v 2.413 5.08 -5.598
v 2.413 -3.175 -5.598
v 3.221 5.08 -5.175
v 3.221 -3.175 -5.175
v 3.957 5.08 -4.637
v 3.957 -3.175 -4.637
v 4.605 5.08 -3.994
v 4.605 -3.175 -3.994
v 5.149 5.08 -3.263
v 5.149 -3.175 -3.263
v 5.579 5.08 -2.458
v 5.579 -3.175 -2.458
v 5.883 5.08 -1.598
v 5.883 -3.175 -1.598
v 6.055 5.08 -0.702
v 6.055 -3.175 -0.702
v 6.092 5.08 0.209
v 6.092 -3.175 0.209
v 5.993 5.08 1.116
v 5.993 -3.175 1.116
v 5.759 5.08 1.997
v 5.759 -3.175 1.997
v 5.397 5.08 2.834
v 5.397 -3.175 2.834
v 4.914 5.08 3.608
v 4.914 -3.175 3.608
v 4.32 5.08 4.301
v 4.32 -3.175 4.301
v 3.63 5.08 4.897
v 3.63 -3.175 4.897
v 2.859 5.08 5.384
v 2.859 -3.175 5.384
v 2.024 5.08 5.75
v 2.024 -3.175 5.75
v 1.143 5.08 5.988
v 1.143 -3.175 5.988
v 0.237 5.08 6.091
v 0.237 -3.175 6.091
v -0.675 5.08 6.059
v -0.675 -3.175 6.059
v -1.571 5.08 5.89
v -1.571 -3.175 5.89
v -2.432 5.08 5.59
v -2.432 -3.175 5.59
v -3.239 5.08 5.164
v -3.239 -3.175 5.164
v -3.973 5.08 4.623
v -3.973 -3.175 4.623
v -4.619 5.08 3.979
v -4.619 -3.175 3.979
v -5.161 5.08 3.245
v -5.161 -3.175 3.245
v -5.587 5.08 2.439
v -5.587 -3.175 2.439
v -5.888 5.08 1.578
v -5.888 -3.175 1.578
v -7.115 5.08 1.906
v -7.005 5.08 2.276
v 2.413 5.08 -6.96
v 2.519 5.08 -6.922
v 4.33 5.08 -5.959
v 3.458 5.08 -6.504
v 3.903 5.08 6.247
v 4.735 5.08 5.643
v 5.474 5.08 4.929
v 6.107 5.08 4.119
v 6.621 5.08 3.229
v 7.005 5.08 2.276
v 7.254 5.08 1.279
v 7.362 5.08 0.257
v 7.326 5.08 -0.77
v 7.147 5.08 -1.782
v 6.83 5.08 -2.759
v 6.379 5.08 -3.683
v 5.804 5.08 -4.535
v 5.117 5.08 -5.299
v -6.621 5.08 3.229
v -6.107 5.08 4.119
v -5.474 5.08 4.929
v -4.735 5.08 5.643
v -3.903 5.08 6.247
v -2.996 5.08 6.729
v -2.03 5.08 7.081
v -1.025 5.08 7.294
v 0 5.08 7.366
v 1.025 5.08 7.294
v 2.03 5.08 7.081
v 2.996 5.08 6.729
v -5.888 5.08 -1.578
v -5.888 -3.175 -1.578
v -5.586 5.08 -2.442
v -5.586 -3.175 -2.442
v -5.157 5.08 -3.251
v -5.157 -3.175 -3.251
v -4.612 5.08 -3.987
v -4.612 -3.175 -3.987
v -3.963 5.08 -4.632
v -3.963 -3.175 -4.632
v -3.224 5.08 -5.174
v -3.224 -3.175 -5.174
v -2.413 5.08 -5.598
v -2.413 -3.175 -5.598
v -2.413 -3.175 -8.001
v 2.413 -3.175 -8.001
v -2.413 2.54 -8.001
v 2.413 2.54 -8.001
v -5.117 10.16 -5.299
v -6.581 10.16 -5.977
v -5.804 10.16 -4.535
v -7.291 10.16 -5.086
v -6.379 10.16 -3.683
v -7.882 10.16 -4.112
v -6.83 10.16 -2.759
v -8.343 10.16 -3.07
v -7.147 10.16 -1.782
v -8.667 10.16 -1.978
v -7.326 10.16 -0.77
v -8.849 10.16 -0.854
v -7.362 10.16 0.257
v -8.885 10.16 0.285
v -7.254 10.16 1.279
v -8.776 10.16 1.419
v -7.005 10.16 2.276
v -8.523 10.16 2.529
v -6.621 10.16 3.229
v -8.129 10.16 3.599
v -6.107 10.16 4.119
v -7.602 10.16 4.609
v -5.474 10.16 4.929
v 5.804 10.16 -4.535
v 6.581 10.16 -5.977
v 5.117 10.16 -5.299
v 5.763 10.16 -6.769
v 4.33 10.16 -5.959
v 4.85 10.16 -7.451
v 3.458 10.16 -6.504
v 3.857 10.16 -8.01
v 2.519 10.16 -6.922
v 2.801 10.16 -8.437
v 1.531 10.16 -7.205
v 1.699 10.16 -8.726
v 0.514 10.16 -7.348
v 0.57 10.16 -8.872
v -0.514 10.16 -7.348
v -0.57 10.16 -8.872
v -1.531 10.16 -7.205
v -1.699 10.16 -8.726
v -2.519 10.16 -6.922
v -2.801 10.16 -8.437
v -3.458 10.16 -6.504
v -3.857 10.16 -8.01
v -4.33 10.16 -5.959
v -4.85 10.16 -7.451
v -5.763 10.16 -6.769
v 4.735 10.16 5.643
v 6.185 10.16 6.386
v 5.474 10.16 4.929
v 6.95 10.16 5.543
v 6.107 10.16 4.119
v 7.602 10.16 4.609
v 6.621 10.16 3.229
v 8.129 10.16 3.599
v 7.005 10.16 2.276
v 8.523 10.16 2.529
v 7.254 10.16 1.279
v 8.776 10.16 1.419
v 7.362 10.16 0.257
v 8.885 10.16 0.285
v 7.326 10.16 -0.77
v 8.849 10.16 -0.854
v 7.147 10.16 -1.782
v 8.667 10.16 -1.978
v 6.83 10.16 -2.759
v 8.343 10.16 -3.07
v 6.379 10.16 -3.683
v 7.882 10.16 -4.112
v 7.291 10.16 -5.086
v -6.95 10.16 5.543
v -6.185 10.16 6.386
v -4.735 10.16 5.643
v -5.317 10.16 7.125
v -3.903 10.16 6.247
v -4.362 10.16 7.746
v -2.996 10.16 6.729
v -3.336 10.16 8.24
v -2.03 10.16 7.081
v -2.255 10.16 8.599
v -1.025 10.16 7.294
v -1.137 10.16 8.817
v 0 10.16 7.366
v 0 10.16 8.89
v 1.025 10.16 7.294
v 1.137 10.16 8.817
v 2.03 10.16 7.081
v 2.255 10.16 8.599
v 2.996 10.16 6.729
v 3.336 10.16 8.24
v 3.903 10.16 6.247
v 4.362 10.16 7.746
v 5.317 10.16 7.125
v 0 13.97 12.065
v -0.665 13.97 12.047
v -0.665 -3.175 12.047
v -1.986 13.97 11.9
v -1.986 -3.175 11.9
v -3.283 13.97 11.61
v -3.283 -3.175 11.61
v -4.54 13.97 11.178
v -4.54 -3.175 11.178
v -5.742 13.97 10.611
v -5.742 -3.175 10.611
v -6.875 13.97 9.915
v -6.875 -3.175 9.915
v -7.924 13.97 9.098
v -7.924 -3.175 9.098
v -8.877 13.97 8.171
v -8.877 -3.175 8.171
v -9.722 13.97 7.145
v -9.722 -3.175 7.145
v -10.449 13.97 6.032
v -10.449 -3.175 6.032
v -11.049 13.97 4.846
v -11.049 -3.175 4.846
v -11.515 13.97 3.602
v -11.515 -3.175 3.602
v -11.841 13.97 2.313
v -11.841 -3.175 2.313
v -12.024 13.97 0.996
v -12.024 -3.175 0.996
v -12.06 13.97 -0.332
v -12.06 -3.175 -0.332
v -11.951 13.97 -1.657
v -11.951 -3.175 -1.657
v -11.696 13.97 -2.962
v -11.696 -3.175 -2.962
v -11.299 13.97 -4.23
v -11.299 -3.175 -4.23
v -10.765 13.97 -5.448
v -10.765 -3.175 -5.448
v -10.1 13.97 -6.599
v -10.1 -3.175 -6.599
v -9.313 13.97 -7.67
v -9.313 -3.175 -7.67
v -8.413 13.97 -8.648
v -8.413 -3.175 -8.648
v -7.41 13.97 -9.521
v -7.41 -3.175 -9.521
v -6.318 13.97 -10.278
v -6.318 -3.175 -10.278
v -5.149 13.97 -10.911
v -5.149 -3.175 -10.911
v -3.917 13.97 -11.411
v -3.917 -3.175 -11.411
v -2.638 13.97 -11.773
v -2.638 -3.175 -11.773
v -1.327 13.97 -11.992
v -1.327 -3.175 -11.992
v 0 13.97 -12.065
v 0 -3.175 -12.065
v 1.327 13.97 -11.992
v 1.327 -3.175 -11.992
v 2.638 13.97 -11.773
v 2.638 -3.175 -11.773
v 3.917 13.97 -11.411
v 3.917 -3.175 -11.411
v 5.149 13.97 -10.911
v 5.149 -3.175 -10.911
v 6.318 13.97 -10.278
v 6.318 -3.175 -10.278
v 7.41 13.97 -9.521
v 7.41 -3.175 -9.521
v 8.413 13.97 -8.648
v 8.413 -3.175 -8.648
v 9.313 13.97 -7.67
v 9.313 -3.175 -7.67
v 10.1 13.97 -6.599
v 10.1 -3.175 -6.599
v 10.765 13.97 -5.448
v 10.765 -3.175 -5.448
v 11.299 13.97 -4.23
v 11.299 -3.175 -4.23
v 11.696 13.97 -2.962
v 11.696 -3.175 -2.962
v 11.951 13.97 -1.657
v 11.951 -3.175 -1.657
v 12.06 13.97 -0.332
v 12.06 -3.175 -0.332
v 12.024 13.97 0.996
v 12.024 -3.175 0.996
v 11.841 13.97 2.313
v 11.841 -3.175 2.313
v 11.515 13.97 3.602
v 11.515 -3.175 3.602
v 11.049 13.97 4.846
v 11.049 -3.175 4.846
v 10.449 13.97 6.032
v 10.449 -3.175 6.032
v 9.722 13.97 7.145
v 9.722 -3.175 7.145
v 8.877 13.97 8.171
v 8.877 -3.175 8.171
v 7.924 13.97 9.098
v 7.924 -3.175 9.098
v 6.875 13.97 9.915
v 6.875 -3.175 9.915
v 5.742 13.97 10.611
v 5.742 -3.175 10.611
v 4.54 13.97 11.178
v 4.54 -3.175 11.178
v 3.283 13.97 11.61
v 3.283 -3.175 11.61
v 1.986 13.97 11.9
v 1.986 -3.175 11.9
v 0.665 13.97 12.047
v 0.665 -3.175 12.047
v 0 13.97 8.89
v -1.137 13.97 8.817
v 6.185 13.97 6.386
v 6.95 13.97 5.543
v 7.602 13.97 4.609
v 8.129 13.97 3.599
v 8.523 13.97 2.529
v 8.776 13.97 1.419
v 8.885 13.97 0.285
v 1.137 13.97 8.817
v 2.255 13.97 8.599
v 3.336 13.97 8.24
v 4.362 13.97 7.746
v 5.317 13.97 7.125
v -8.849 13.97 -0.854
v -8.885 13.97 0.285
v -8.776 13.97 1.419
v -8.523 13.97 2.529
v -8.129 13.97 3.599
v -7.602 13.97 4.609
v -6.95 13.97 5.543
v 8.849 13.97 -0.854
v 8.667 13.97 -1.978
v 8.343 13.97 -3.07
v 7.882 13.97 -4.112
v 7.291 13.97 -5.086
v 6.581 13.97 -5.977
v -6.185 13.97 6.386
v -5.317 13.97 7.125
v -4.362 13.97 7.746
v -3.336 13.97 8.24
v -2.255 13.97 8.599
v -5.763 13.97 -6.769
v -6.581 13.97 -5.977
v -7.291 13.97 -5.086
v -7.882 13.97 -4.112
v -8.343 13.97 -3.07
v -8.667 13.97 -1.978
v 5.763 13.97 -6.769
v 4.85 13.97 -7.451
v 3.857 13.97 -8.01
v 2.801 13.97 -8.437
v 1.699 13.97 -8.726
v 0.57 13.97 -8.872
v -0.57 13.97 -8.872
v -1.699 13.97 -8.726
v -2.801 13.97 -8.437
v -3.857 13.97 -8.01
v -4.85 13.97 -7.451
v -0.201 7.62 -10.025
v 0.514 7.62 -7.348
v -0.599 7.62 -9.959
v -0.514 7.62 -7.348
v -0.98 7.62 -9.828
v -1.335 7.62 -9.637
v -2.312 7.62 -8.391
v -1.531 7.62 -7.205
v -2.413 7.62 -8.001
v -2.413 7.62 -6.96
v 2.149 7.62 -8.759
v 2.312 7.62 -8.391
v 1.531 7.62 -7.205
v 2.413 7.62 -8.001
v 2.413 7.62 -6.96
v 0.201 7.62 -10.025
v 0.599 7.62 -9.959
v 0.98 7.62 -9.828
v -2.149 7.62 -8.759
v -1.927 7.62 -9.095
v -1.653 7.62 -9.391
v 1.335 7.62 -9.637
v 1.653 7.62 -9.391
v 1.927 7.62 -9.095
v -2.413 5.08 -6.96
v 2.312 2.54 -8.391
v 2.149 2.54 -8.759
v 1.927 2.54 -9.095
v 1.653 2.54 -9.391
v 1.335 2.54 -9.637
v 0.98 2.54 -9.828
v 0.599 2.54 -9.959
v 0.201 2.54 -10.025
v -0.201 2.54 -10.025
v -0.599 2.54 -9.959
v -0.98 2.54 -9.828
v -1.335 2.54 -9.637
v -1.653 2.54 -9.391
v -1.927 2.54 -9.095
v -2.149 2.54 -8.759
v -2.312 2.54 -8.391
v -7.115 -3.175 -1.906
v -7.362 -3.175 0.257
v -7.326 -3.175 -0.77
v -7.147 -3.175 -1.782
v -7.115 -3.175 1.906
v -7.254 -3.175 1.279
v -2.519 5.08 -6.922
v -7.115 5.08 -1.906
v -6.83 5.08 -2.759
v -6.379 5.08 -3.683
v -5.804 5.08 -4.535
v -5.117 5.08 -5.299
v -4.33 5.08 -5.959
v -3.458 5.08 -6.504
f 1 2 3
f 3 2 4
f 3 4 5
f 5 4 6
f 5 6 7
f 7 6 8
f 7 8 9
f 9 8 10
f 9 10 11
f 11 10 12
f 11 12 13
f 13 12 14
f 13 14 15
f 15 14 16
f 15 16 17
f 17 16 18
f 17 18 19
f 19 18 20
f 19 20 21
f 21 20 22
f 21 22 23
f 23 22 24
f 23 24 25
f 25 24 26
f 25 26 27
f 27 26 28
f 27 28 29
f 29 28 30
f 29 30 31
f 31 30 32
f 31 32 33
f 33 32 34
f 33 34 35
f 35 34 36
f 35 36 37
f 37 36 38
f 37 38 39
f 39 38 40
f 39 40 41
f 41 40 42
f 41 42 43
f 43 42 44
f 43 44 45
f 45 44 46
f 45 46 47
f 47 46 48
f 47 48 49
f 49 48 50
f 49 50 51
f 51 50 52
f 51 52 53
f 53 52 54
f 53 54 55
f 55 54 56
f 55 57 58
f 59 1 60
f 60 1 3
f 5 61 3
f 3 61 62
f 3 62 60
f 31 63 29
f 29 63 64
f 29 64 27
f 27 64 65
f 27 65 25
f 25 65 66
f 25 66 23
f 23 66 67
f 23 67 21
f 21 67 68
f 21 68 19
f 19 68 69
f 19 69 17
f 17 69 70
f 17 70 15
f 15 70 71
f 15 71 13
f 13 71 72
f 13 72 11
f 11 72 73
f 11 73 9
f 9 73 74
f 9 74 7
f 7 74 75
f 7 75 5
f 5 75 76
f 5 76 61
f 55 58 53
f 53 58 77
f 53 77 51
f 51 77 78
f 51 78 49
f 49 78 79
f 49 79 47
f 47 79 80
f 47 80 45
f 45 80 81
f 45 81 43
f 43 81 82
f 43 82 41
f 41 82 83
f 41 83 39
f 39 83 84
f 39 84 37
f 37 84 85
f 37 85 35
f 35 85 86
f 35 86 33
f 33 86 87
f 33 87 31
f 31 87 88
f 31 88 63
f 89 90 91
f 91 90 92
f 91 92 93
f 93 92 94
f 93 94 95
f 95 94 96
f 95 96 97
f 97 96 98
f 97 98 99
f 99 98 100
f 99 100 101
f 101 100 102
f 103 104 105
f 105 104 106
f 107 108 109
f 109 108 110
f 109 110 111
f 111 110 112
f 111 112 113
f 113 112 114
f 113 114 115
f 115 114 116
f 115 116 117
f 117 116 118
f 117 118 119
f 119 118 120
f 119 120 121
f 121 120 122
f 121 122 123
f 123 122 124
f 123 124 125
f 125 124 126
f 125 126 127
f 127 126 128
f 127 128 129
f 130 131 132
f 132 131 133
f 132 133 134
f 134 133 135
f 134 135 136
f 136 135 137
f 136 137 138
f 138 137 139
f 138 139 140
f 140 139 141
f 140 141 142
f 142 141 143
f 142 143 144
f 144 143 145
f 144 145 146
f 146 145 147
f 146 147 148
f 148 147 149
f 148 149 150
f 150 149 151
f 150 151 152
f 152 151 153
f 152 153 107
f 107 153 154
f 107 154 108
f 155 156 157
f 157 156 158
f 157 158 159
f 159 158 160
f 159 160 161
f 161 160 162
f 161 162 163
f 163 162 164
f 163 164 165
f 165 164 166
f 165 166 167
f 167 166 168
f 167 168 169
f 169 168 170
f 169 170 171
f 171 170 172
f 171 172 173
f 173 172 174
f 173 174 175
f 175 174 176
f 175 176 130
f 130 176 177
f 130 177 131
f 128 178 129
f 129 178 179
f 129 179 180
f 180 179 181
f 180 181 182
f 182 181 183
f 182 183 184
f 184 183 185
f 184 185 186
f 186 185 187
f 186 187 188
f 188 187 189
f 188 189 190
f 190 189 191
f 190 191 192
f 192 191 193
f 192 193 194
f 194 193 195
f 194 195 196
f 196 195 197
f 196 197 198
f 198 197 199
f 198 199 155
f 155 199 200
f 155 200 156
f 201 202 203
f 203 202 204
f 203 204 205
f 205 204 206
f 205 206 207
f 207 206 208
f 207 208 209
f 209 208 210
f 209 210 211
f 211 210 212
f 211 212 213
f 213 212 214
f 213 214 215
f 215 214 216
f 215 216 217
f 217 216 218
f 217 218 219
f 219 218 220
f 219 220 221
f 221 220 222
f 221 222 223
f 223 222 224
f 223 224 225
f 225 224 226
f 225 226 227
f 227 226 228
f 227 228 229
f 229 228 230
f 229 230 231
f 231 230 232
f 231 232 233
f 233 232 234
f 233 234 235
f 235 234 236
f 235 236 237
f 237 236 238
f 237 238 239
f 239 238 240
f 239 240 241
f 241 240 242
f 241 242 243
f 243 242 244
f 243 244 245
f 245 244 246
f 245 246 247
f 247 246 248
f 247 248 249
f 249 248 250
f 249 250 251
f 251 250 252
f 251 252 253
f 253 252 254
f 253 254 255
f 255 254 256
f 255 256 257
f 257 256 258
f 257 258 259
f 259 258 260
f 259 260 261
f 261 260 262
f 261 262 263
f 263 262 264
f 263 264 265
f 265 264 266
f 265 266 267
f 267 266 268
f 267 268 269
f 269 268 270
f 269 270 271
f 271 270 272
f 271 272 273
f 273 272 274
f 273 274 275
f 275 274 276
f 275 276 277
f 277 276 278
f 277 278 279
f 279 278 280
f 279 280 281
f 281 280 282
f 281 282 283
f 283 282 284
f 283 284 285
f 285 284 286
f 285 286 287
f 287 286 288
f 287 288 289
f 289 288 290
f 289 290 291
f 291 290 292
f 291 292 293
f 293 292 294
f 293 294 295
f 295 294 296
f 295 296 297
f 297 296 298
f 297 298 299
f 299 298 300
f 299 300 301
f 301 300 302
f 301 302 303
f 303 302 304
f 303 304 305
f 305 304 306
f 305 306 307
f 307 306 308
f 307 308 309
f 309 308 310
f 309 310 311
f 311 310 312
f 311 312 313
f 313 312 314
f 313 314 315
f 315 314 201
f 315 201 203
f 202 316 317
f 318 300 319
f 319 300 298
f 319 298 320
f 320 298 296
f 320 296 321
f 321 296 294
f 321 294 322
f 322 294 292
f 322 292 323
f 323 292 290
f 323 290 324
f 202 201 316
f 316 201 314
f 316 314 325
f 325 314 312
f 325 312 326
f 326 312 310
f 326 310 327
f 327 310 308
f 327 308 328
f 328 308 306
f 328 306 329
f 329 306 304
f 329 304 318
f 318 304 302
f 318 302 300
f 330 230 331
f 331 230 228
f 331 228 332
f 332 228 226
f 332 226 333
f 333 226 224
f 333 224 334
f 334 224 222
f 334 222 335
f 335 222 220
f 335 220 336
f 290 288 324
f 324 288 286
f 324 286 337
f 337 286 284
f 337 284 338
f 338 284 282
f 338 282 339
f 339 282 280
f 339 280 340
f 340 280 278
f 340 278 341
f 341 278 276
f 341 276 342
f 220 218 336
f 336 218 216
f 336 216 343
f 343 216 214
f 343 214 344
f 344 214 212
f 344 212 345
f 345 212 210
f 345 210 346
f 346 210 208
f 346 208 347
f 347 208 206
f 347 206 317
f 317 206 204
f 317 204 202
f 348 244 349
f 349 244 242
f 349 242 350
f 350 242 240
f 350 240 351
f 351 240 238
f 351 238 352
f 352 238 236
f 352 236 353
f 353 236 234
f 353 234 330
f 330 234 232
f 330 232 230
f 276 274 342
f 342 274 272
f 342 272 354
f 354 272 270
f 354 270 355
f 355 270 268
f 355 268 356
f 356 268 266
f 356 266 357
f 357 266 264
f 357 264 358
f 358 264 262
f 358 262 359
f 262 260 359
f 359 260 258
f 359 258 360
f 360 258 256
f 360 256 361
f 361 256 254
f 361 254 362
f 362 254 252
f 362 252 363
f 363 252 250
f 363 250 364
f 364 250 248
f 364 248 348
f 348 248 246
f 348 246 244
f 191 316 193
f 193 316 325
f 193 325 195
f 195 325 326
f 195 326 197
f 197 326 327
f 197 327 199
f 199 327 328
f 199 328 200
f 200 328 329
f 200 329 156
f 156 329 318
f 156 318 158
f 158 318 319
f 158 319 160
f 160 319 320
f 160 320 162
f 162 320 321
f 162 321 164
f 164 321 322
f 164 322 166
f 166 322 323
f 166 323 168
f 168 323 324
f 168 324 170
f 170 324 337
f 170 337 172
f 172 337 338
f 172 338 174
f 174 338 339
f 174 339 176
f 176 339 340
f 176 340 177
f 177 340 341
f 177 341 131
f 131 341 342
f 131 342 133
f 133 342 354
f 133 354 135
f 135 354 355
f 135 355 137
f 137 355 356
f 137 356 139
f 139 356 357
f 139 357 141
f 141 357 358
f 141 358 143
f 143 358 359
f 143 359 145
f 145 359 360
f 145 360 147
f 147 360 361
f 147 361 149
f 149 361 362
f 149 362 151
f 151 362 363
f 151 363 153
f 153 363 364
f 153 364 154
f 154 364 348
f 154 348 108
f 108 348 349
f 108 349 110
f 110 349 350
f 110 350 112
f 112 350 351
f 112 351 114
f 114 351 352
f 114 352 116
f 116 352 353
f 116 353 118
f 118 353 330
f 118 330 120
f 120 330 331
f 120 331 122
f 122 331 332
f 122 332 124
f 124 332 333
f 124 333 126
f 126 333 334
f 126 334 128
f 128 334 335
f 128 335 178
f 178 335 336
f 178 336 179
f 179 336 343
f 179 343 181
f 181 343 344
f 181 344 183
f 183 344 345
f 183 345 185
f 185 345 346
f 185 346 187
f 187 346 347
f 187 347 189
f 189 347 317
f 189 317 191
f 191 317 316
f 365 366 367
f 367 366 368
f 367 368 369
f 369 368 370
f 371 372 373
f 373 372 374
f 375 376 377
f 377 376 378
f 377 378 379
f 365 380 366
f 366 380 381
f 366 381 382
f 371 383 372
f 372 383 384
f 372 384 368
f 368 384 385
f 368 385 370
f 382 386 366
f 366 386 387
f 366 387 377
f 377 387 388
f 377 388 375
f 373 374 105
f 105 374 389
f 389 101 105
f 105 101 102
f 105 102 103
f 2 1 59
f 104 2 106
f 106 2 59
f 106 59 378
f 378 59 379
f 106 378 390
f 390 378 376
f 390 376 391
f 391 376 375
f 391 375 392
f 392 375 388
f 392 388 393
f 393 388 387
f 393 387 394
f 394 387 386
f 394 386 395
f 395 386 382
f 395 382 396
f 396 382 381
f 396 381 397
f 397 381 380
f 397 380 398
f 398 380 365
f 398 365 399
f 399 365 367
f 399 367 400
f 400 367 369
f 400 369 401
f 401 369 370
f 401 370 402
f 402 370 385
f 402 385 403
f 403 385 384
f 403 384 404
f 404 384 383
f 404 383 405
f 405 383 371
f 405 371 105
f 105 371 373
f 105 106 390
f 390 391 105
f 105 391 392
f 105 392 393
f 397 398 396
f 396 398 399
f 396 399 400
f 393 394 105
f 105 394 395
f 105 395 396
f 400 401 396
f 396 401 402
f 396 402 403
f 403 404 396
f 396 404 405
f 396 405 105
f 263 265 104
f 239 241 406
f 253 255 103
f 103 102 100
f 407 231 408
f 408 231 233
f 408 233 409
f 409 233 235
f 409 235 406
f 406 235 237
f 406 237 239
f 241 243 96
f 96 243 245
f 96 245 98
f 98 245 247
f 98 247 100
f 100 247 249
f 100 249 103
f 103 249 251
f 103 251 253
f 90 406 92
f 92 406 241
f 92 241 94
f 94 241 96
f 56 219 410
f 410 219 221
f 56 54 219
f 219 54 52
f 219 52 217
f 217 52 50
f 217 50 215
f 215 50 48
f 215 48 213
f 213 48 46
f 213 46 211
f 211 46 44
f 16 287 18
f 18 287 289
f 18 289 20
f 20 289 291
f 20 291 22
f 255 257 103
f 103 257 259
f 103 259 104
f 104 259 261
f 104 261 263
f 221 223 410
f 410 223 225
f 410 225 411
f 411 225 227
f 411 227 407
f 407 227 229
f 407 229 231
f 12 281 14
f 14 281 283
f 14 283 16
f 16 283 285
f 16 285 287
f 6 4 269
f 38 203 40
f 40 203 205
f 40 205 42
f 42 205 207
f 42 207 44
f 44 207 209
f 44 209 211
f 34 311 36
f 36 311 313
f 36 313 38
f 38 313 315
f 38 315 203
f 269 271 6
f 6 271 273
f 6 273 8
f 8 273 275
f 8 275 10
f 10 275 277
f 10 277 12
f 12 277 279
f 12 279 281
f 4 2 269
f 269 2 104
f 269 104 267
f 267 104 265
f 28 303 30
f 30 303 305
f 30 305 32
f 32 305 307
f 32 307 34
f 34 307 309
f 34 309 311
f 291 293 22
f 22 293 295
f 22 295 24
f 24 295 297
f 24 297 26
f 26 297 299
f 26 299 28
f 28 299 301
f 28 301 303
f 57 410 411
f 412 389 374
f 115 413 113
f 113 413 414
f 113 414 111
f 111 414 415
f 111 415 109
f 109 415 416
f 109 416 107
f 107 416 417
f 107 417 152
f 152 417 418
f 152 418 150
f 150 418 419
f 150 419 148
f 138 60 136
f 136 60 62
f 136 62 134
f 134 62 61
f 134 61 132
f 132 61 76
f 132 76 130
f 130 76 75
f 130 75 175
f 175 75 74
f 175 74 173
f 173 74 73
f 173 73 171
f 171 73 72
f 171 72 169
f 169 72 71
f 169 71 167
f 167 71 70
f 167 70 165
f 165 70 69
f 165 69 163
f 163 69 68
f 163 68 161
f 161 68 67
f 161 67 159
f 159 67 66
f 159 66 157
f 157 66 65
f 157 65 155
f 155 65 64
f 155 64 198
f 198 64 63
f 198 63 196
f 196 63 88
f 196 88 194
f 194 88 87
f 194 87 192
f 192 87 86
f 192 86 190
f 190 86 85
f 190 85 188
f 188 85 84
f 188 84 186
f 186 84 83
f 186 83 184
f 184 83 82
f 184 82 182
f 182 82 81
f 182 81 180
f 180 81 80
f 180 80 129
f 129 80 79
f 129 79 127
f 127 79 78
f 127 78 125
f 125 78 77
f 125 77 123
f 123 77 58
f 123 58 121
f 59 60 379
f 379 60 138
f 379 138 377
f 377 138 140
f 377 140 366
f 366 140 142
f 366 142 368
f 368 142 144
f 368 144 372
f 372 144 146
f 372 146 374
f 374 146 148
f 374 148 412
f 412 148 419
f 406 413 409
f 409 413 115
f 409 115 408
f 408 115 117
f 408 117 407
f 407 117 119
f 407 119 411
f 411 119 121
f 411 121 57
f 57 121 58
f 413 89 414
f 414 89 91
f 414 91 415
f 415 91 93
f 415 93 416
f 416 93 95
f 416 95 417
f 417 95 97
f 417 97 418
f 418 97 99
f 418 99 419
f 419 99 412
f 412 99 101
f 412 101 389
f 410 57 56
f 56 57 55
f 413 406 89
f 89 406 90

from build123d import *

# Parameters (mm, degrees)
SKETCH1_R            = 7.62
SKETCH1_R_2          = 6.096
BOSS_EXTRUDE1_DEPTH  = 10.16
SKETCH1_4_R          = 12.065
SKETCH1_4_R_2        = 7.62
BOSS_EXTRUDE2_DEPTH  = 12.7
SKETCH9_R            = 12.065
SKETCH9_R_2          = 7.62
BOSS_EXTRUDE22_DEPTH = 1.27
SKETCH10_R           = 8.89
SKETCH10_R_2         = 7.62
CUT_EXTRUDE5_DEPTH   = 3.81
SKETCH14_W           = 4.826
SKETCH14_H           = 8.001
CUT_EXTRUDE8_DEPTH   = 7.62
CUT_EXTRUDE9_DEPTH   = 5.08
SKETCH16_R           = 12.065
BOSS_EXTRUDE24_DEPTH = 3.175
SKETCH17_R           = 7.366
SKETCH17_R_2         = 6.096
CUT_EXTRUDE10_DEPTH  = 5.08
CUT_EXTRUDE11_DEPTH  = 8.255


with BuildPart() as part:
    # Sketch1 → Boss-Extrude1 (new body)
    with BuildSketch(Plane(origin=(0, 0, 0), x_dir=(1, 0, 0), z_dir=(0, 1, 0))):
        Circle(SKETCH1_R)
        Circle(SKETCH1_R_2, mode=Mode.SUBTRACT)
    extrude(amount=BOSS_EXTRUDE1_DEPTH)

    # Sketch1<4> → Boss-Extrude2 (add)
    with BuildSketch(Plane(origin=(0, 0, 0), x_dir=(1, 0, 0), z_dir=(0, 1, 0))):
        Circle(SKETCH1_4_R)
        Circle(SKETCH1_4_R_2, mode=Mode.SUBTRACT)
    extrude(amount=BOSS_EXTRUDE2_DEPTH)

    # Sketch9 → Boss-Extrude22 (add)
    with BuildSketch(Plane(origin=(0, 12.7, 0), x_dir=(1, 0, 0), z_dir=(0, 1, 0))):
        Circle(SKETCH9_R)
        Circle(SKETCH9_R_2, mode=Mode.SUBTRACT)
    extrude(amount=BOSS_EXTRUDE22_DEPTH)

    # Sketch10 → Cut-Extrude5 (cut)
    with BuildSketch(Plane(origin=(0, 13.97, 0), x_dir=(1, 0, 0), z_dir=(0, 1, 0))):
        Circle(SKETCH10_R)
        Circle(SKETCH10_R_2, mode=Mode.SUBTRACT)
    extrude(amount=-CUT_EXTRUDE5_DEPTH, mode=Mode.SUBTRACT)

    # Sketch14 → Cut-Extrude8 (cut)
    with BuildSketch(Plane.XZ):
        with Locations((0, -4.0005)):
            Rectangle(SKETCH14_W, SKETCH14_H)
    extrude(amount=-CUT_EXTRUDE8_DEPTH, mode=Mode.SUBTRACT)

    # Sketch15 → Cut-Extrude9 (cut)
    with BuildSketch(Plane.XZ.offset(-7.62)):
        with BuildLine():
            Line((2.413, -8.001), (-2.413, -8.001))
            ThreePointArc((-2.413, -8.001), (0, -10.033), (2.413, -8.001))
        make_face()
    extrude(amount=CUT_EXTRUDE9_DEPTH, mode=Mode.SUBTRACT)

    # Sketch16 → Boss-Extrude24 (add)
    with BuildSketch(Plane.XZ):
        Circle(SKETCH16_R)
        with BuildLine():
            Line((2.413, -5.598093), (2.413, -8.001))
            Line((2.413, -8.001), (-2.413, -8.001))
            Line((-2.413, -8.001), (-2.413, -5.598093))
            ThreePointArc((-2.413, -5.598093), (0, 6.096), (2.413, -5.598093))
        make_face(mode=Mode.SUBTRACT)
    extrude(amount=BOSS_EXTRUDE24_DEPTH)

    # Sketch17 → Cut-Extrude10 (cut)
    with BuildSketch(Plane(origin=(0, 10.16, 0), x_dir=(1, 0, 0), z_dir=(0, 1, 0))):
        Circle(SKETCH17_R)
        Circle(SKETCH17_R_2, mode=Mode.SUBTRACT)
    extrude(amount=-CUT_EXTRUDE10_DEPTH, mode=Mode.SUBTRACT)

    # Sketch18 → Cut-Extrude11 (cut)
    with BuildSketch(Plane(origin=(0, 5.08, 0), x_dir=(1, 0, 0), z_dir=(0, 1, 0))):
        with BuildLine():
            Line((0, 0), (-7.11501, -1.906461))
            ThreePointArc((-7.11501, -1.906461), (-7.366, 0), (-7.11501, 1.906461))
            Line((-7.11501, 1.906461), (0, 0))
        make_face()
    extrude(amount=-CUT_EXTRUDE11_DEPTH, mode=Mode.SUBTRACT)


solid = part.part
